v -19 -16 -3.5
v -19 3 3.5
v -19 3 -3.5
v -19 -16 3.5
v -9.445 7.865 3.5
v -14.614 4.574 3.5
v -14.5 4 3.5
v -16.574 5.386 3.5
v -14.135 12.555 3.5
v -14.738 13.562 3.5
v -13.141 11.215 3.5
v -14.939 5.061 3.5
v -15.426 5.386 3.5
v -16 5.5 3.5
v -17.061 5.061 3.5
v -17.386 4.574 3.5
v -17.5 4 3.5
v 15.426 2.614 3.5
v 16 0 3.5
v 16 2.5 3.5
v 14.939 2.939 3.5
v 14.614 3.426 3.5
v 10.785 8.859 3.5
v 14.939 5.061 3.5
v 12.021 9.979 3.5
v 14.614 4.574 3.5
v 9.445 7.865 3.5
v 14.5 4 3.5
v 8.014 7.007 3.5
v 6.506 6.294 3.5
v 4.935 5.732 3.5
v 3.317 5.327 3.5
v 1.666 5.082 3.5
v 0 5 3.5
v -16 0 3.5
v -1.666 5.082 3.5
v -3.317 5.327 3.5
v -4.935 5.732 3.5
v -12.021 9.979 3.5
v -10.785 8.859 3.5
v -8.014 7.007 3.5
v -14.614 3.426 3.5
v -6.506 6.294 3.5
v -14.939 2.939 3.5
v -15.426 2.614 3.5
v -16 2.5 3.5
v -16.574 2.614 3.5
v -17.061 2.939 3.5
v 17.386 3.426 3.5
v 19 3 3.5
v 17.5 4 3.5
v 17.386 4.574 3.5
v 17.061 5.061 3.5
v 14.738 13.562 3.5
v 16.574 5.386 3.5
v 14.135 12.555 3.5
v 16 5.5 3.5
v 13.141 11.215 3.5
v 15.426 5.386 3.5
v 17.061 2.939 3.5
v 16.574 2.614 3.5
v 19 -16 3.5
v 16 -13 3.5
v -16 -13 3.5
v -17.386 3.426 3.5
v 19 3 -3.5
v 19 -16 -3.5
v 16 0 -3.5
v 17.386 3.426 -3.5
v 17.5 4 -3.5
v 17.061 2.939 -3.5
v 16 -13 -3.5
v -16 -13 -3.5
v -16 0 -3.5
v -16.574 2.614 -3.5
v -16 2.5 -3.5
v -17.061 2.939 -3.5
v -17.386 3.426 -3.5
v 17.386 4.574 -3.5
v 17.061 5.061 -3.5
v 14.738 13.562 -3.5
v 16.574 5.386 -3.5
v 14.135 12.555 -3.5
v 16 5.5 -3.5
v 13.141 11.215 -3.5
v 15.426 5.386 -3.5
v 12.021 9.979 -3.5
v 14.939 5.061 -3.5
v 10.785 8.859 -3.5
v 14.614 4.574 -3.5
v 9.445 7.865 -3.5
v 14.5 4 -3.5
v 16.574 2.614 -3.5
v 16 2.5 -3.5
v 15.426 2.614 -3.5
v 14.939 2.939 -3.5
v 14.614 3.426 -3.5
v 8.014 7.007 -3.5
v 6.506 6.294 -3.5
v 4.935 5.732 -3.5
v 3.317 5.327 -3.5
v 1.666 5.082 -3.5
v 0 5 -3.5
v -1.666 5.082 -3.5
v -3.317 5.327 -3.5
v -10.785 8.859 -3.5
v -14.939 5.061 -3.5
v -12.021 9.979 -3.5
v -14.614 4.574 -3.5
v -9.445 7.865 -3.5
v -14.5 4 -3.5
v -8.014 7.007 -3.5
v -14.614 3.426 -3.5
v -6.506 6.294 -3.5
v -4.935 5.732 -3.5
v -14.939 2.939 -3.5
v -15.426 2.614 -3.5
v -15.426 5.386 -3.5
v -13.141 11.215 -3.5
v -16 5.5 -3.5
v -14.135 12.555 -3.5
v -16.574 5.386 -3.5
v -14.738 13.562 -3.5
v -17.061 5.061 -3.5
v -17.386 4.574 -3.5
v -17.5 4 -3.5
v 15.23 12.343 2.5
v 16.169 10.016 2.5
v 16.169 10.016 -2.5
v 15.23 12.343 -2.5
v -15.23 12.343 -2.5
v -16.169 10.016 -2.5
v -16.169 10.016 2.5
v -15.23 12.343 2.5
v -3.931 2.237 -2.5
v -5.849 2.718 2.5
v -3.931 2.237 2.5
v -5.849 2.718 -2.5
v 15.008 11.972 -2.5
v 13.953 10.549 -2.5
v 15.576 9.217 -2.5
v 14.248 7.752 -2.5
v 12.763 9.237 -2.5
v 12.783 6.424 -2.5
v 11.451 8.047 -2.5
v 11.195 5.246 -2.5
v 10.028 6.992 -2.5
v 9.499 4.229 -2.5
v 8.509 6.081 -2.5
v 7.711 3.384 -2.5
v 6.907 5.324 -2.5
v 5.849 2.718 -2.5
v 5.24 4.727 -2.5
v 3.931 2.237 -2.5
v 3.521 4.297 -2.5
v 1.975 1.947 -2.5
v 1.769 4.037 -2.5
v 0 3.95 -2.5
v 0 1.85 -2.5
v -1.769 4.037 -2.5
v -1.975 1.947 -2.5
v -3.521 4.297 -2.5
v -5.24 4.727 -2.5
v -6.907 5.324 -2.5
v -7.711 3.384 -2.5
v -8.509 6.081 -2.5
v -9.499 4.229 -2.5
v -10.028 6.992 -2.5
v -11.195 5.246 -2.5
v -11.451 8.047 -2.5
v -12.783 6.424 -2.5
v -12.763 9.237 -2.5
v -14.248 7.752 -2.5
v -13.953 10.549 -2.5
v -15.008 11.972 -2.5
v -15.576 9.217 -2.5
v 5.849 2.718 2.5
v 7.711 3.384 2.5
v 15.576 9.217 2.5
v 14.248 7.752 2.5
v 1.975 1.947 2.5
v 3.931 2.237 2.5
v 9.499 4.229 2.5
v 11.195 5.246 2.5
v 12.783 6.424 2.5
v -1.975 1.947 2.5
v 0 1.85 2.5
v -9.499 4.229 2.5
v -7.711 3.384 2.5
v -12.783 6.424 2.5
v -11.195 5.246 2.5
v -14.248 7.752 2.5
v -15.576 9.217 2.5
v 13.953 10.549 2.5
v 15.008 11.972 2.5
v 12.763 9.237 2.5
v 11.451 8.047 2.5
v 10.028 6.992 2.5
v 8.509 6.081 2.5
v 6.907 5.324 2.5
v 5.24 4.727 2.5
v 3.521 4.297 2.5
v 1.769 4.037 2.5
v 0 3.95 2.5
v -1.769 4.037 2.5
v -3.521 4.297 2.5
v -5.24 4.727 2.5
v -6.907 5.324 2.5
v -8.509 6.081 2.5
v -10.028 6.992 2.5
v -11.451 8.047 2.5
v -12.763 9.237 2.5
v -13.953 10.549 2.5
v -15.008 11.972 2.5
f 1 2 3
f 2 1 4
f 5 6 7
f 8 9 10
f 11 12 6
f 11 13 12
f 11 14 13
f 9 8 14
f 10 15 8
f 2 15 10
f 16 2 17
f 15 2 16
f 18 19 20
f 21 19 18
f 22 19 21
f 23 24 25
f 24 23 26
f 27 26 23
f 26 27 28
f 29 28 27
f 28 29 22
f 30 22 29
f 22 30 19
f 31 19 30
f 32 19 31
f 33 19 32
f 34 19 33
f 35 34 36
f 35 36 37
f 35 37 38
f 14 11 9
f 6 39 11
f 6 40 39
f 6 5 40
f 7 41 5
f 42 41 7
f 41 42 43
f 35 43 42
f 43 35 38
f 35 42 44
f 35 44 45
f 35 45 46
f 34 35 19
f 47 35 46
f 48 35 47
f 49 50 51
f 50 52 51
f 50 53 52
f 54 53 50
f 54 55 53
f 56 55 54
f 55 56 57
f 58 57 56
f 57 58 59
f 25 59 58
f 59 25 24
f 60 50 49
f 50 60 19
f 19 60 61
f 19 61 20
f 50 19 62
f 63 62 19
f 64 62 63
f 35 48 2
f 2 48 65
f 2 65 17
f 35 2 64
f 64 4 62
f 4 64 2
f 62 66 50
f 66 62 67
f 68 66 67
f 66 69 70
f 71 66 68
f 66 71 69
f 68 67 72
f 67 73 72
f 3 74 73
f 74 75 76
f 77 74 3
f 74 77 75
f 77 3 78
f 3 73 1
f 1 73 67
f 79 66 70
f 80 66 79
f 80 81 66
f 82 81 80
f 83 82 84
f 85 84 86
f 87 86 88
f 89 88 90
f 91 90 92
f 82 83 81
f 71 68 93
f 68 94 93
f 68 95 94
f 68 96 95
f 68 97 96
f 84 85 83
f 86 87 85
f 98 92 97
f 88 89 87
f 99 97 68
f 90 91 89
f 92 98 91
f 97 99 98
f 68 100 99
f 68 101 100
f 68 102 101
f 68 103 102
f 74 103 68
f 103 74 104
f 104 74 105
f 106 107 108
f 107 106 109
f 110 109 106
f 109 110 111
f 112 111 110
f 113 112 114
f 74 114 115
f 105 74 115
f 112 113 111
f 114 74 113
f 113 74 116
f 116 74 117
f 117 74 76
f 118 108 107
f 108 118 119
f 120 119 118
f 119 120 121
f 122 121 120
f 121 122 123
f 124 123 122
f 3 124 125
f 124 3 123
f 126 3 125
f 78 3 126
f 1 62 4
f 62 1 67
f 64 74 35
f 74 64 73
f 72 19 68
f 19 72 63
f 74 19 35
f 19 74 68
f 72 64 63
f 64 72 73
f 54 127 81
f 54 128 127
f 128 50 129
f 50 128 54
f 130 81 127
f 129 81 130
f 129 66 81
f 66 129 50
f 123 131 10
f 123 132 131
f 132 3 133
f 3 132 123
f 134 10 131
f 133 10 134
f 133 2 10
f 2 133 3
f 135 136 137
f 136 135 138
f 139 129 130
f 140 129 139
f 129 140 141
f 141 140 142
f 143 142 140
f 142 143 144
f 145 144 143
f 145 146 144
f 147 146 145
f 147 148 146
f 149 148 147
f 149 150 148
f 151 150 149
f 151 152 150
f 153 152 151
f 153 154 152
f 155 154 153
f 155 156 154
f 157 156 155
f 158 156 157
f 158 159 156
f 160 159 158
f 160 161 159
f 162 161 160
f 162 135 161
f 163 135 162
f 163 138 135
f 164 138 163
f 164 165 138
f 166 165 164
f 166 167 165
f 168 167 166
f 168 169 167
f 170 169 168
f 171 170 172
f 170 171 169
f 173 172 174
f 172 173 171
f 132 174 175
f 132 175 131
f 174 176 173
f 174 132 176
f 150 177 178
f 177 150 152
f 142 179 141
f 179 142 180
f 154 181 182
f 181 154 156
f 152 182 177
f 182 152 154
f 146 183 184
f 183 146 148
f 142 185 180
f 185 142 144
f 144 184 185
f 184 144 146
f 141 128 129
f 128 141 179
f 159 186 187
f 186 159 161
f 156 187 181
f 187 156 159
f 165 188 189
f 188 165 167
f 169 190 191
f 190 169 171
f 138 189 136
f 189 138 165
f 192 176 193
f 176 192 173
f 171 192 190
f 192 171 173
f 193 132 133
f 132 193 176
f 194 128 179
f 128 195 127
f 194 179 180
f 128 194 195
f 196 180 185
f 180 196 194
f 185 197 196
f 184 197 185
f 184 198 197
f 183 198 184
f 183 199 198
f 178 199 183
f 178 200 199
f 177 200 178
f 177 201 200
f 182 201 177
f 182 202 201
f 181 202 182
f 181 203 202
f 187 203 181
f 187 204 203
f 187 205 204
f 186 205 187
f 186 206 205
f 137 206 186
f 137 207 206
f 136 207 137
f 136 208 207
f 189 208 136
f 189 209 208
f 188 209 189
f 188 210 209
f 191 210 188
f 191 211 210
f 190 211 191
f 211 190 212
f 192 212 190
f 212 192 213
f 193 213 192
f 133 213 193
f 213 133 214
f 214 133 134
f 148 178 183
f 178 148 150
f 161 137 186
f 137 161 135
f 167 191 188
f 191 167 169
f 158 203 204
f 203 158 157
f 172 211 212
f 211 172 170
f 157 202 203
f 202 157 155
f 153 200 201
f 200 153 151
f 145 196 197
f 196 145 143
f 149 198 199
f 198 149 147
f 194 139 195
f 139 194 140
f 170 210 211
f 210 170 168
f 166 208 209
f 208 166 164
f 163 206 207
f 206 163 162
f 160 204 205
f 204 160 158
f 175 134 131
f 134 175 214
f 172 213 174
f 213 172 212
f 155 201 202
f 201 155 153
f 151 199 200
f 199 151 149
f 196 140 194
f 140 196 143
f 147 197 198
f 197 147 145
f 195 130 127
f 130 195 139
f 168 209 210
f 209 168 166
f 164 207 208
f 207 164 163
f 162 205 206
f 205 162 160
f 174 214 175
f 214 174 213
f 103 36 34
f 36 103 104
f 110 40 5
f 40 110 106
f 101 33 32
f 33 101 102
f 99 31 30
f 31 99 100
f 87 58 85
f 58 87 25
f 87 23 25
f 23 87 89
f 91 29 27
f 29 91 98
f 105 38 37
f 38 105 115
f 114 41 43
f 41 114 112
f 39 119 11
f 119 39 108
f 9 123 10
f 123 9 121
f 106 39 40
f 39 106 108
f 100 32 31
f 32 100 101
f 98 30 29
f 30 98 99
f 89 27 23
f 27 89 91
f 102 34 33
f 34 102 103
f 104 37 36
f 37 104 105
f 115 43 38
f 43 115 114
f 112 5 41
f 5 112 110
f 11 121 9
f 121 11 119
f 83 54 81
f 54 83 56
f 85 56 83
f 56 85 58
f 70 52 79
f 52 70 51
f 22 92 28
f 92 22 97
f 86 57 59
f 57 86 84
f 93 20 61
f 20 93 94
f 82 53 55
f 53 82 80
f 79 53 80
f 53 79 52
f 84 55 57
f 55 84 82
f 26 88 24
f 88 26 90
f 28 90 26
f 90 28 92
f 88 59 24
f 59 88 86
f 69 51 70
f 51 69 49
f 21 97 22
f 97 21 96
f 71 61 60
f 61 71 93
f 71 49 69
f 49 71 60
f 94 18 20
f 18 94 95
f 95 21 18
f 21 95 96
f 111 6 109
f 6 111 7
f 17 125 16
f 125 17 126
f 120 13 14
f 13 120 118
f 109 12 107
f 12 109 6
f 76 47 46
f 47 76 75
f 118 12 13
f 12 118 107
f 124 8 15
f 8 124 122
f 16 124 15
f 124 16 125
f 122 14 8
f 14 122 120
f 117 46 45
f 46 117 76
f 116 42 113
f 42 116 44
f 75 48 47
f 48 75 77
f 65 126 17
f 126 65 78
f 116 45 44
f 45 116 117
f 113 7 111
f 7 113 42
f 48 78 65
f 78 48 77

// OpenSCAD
// dimensions of the battery:
height=13;
width=32; // eventually choose a millimeter more than you measure
length=66;

// how thick should the frame holding the battery be?
thick=3;

// which dimensions should the strap to attach it to the stem have:
strapWidth=5;
strapThickness=1.5 * 1.4; // physical thickness * factor to be more easy
                          // able to push it through the tunnel

// thickness of the complete thing so the strap can nicely be fit inside:
shellWidth = strapWidth + 2;

// the hole to interconnect 2 pieces of this:
connectHoleRadius = 1.5;

// Diameter of the tube to attach to:
stemWidth = 34;
// how far away schould the battery be from the tube?
// you may need to have some distance so the handle bar mount screws can
// be passed by the battery when inserting it
stemDelta = 8;

// calculate the outer dimensions of the holder:
outerWidth = width + 2 * thick;
outerHeight = height + 2 * thick;

// calculate the center position of the stem:
stemCenter =  stemWidth / 2 + stemDelta - thick;

echo("stemCenter is: ");
echo(stemCenter);


difference() {
    union() {
        // Battery frame, upper line of the battery is the 0-line:
        translate ([0, - height / 2, 0]) difference () {
            cube([outerWidth, outerHeight, shellWidth], center=true);
            // whole to push the battery through:
            cube([width, height, shellWidth + 2], center=true);
        }
        // the triangle to the stem:
        linear_extrude(shellWidth, center=true) polygon([
                [  outerWidth / 2, thick ],
                [  stemWidth  / 3, stemCenter ],
                [- stemWidth  / 3, stemCenter ],
                [- outerWidth / 2, thick ]
            ]
        );
    }
    // punch of the stem:
    translate([0,  stemCenter, 0])
      cylinder(h=shellWidth + 2, r=stemWidth / 2, center=true, $fn=64);

    // the wholes to connect two items of this:
    translate([ width / 2, stemDelta / 2,  0])
      cylinder(h=shellWidth + 2, r=connectHoleRadius, center = true, $fn=16);
    translate([- width / 2, stemDelta / 2,  0])
      cylinder(h=shellWidth + 2, r=connectHoleRadius, center = true, $fn=16);
    
    // dig the tunnel for the ratbelt:
    difference() {
        tunnelRadius = stemWidth / 2  + strapThickness * 1.5;
        
        translate([0,  stemCenter, 0])
        # cylinder(h=shellWidth - 2, r=tunnelRadius, center=true, $fn=64);
        translate([0,  stemCenter, 0])
        # cylinder(h=shellWidth - 1, r=tunnelRadius - strapThickness, center=true, $fn=64);
    }
    
}
